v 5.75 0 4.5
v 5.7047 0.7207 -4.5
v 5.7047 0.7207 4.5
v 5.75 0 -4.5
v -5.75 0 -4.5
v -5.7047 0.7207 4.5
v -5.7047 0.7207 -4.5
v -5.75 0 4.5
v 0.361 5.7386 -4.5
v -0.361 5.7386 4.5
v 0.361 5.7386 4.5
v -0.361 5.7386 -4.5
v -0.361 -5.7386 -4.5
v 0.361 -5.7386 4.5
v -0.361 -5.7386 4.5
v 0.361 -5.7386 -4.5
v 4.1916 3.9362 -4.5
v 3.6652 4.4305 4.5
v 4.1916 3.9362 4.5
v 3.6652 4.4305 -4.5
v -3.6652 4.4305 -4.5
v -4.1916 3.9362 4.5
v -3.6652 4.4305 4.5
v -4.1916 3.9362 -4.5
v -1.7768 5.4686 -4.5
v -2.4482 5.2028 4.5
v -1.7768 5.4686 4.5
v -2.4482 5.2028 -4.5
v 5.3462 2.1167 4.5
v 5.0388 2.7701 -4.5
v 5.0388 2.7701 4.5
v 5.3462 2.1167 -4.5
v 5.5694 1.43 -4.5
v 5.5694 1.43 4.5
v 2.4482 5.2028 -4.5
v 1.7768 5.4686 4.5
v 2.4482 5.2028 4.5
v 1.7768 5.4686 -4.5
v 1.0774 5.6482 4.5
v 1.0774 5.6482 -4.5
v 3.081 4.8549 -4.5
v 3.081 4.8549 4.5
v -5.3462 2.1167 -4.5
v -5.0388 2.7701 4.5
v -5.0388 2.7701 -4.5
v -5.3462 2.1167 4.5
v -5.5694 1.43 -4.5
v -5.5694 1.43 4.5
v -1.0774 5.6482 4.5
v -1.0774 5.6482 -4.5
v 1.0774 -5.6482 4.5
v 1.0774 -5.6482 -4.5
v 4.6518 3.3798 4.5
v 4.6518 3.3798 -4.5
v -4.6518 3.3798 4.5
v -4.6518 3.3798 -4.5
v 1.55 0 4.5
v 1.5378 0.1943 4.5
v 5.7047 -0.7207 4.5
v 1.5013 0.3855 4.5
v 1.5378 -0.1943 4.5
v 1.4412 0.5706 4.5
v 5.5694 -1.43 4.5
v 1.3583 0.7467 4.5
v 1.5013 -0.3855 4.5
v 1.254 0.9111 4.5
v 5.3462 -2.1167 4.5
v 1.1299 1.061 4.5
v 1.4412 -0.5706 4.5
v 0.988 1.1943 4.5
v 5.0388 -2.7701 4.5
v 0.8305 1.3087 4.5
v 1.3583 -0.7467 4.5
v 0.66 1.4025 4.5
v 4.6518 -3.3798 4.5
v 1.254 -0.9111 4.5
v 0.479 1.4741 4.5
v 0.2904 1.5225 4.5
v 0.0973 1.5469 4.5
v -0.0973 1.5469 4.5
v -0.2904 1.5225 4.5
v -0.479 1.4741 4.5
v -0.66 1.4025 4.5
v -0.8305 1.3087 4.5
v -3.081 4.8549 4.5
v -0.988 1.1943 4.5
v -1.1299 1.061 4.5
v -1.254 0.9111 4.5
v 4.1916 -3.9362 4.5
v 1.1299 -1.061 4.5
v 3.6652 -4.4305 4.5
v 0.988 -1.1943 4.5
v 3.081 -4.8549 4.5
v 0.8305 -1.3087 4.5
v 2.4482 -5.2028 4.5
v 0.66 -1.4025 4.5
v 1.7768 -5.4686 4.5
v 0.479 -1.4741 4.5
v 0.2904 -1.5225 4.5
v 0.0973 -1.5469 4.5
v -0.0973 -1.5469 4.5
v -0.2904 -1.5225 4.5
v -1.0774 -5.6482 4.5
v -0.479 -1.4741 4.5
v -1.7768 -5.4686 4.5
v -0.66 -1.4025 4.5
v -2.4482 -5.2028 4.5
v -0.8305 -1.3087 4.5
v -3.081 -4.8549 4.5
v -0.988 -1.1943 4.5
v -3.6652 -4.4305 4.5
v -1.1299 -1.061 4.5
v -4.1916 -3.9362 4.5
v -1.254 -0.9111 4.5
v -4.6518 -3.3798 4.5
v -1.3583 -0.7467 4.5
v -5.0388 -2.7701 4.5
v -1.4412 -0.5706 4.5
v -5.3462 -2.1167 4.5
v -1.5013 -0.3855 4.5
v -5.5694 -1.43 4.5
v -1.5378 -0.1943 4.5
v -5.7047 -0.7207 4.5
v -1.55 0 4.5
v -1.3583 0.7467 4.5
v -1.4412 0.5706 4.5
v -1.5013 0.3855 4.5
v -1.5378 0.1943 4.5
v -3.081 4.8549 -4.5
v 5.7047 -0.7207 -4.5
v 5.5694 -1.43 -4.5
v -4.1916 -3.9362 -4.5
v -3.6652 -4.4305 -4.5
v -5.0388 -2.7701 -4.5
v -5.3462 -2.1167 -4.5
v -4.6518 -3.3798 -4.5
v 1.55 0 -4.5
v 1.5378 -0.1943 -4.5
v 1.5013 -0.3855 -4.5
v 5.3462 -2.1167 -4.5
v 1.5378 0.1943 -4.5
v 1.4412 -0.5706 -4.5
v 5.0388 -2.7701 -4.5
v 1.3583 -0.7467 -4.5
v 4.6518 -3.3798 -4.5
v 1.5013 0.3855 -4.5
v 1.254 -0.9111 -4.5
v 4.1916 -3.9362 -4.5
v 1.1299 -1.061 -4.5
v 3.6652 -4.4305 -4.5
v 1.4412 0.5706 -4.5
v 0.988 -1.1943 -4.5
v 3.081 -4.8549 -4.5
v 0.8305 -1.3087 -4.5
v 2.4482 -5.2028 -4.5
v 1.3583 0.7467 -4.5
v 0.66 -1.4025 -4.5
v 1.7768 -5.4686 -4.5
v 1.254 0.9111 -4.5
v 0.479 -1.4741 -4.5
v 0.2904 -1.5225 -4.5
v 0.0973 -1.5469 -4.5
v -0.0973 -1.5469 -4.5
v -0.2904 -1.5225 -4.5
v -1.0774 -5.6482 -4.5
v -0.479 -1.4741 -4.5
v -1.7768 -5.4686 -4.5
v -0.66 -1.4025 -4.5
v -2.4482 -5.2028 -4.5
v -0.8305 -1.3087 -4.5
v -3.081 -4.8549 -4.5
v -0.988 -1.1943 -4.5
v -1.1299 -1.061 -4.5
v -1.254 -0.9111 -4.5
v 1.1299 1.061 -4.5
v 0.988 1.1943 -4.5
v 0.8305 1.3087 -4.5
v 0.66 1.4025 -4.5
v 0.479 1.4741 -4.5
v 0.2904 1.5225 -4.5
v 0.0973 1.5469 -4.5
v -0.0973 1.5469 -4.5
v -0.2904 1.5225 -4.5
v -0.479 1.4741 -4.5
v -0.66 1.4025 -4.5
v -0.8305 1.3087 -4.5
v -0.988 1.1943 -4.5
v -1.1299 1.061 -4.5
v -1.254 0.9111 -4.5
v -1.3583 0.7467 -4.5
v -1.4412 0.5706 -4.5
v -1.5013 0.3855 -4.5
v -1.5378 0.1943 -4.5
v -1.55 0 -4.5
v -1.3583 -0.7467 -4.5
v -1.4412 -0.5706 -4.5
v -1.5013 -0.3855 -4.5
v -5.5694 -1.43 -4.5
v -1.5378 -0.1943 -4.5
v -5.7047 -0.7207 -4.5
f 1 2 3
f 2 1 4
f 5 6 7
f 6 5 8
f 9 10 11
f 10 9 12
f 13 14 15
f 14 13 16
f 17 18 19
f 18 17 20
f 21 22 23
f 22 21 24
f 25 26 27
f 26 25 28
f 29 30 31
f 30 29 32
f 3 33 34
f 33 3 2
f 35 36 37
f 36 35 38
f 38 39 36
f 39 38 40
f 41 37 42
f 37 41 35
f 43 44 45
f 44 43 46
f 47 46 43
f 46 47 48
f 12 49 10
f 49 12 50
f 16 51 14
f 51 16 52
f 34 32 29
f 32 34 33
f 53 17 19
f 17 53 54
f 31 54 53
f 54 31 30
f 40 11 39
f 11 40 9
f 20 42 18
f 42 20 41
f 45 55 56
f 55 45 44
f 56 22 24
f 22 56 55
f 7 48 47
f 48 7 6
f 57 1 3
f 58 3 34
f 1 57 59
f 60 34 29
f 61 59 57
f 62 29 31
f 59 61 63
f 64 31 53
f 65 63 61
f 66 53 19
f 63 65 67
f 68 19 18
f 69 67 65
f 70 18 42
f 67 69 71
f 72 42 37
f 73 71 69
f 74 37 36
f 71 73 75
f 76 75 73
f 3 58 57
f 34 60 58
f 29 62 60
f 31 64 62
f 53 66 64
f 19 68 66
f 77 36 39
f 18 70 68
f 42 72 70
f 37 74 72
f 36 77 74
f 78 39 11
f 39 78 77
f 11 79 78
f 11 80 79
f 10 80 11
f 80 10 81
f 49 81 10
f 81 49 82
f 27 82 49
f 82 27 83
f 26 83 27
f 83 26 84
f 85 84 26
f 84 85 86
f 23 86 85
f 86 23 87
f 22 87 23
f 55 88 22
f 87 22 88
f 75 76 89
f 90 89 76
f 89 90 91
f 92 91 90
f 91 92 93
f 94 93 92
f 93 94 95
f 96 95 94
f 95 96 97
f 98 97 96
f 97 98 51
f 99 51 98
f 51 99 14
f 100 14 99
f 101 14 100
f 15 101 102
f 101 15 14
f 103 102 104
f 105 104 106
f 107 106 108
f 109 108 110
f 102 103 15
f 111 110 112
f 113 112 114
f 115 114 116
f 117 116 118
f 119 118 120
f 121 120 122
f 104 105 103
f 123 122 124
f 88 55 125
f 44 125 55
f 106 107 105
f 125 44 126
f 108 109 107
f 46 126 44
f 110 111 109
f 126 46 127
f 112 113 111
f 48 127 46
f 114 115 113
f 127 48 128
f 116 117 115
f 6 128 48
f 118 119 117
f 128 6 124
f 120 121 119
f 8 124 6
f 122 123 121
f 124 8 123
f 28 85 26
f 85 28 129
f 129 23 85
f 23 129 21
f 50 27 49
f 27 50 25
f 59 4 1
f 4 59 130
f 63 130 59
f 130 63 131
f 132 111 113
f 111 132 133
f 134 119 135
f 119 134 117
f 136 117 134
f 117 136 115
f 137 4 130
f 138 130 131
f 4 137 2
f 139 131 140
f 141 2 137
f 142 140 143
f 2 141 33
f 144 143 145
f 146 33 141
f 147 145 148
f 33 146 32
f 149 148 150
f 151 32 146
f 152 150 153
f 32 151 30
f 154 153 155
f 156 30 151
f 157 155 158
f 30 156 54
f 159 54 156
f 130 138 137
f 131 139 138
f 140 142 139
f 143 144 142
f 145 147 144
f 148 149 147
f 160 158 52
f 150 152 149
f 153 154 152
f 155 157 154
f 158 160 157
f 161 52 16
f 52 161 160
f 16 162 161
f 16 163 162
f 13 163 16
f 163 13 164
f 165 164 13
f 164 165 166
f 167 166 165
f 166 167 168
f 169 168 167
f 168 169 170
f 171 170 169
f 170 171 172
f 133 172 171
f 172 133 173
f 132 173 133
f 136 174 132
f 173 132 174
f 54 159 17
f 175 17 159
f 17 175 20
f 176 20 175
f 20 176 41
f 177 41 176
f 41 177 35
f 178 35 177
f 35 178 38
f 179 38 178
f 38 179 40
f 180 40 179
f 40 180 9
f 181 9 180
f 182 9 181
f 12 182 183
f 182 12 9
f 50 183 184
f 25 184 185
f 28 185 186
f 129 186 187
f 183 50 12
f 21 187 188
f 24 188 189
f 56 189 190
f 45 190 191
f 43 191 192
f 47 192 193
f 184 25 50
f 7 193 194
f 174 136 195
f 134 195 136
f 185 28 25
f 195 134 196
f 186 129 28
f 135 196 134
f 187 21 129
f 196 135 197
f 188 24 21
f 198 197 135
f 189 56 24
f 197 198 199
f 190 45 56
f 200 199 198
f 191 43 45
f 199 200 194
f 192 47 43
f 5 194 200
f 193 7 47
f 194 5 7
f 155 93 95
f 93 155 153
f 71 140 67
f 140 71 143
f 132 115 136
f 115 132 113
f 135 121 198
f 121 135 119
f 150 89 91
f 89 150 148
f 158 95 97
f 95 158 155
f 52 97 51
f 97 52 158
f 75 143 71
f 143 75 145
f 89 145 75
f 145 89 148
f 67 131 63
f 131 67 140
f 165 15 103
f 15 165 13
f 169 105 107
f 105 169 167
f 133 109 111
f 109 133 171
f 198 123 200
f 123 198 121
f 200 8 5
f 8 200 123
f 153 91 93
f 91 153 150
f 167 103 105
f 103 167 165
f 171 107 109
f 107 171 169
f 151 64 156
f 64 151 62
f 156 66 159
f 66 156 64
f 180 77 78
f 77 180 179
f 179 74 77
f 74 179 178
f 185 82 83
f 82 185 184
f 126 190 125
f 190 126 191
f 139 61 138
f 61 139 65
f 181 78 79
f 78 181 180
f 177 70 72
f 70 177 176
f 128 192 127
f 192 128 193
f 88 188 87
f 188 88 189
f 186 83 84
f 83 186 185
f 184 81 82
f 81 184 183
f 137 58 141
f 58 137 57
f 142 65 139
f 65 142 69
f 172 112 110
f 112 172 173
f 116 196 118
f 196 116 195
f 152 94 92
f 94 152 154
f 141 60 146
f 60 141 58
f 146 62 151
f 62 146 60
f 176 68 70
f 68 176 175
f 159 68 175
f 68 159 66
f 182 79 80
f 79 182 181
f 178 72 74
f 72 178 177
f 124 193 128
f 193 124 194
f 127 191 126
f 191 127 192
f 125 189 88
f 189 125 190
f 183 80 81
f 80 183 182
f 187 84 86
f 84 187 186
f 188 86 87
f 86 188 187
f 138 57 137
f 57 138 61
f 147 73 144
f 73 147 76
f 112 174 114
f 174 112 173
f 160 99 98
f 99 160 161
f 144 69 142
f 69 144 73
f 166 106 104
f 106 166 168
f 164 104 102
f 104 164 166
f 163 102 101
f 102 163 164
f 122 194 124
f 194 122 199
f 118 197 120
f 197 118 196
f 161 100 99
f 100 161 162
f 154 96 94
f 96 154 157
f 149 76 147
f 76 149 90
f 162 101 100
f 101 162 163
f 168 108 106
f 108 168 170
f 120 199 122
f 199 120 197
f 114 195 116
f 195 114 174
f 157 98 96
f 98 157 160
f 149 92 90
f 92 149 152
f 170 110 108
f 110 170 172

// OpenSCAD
$fn = 50;


difference() {
	union() {
		translate(v = [0, 0, -4.5000000000]) {
			cylinder(h = 9, r = 5.7500000000);
		}
	}
	union() {
		translate(v = [0, 0, -100.0000000000]) {
			cylinder(h = 200, r = 1.5500000000);
		}
	}
}
